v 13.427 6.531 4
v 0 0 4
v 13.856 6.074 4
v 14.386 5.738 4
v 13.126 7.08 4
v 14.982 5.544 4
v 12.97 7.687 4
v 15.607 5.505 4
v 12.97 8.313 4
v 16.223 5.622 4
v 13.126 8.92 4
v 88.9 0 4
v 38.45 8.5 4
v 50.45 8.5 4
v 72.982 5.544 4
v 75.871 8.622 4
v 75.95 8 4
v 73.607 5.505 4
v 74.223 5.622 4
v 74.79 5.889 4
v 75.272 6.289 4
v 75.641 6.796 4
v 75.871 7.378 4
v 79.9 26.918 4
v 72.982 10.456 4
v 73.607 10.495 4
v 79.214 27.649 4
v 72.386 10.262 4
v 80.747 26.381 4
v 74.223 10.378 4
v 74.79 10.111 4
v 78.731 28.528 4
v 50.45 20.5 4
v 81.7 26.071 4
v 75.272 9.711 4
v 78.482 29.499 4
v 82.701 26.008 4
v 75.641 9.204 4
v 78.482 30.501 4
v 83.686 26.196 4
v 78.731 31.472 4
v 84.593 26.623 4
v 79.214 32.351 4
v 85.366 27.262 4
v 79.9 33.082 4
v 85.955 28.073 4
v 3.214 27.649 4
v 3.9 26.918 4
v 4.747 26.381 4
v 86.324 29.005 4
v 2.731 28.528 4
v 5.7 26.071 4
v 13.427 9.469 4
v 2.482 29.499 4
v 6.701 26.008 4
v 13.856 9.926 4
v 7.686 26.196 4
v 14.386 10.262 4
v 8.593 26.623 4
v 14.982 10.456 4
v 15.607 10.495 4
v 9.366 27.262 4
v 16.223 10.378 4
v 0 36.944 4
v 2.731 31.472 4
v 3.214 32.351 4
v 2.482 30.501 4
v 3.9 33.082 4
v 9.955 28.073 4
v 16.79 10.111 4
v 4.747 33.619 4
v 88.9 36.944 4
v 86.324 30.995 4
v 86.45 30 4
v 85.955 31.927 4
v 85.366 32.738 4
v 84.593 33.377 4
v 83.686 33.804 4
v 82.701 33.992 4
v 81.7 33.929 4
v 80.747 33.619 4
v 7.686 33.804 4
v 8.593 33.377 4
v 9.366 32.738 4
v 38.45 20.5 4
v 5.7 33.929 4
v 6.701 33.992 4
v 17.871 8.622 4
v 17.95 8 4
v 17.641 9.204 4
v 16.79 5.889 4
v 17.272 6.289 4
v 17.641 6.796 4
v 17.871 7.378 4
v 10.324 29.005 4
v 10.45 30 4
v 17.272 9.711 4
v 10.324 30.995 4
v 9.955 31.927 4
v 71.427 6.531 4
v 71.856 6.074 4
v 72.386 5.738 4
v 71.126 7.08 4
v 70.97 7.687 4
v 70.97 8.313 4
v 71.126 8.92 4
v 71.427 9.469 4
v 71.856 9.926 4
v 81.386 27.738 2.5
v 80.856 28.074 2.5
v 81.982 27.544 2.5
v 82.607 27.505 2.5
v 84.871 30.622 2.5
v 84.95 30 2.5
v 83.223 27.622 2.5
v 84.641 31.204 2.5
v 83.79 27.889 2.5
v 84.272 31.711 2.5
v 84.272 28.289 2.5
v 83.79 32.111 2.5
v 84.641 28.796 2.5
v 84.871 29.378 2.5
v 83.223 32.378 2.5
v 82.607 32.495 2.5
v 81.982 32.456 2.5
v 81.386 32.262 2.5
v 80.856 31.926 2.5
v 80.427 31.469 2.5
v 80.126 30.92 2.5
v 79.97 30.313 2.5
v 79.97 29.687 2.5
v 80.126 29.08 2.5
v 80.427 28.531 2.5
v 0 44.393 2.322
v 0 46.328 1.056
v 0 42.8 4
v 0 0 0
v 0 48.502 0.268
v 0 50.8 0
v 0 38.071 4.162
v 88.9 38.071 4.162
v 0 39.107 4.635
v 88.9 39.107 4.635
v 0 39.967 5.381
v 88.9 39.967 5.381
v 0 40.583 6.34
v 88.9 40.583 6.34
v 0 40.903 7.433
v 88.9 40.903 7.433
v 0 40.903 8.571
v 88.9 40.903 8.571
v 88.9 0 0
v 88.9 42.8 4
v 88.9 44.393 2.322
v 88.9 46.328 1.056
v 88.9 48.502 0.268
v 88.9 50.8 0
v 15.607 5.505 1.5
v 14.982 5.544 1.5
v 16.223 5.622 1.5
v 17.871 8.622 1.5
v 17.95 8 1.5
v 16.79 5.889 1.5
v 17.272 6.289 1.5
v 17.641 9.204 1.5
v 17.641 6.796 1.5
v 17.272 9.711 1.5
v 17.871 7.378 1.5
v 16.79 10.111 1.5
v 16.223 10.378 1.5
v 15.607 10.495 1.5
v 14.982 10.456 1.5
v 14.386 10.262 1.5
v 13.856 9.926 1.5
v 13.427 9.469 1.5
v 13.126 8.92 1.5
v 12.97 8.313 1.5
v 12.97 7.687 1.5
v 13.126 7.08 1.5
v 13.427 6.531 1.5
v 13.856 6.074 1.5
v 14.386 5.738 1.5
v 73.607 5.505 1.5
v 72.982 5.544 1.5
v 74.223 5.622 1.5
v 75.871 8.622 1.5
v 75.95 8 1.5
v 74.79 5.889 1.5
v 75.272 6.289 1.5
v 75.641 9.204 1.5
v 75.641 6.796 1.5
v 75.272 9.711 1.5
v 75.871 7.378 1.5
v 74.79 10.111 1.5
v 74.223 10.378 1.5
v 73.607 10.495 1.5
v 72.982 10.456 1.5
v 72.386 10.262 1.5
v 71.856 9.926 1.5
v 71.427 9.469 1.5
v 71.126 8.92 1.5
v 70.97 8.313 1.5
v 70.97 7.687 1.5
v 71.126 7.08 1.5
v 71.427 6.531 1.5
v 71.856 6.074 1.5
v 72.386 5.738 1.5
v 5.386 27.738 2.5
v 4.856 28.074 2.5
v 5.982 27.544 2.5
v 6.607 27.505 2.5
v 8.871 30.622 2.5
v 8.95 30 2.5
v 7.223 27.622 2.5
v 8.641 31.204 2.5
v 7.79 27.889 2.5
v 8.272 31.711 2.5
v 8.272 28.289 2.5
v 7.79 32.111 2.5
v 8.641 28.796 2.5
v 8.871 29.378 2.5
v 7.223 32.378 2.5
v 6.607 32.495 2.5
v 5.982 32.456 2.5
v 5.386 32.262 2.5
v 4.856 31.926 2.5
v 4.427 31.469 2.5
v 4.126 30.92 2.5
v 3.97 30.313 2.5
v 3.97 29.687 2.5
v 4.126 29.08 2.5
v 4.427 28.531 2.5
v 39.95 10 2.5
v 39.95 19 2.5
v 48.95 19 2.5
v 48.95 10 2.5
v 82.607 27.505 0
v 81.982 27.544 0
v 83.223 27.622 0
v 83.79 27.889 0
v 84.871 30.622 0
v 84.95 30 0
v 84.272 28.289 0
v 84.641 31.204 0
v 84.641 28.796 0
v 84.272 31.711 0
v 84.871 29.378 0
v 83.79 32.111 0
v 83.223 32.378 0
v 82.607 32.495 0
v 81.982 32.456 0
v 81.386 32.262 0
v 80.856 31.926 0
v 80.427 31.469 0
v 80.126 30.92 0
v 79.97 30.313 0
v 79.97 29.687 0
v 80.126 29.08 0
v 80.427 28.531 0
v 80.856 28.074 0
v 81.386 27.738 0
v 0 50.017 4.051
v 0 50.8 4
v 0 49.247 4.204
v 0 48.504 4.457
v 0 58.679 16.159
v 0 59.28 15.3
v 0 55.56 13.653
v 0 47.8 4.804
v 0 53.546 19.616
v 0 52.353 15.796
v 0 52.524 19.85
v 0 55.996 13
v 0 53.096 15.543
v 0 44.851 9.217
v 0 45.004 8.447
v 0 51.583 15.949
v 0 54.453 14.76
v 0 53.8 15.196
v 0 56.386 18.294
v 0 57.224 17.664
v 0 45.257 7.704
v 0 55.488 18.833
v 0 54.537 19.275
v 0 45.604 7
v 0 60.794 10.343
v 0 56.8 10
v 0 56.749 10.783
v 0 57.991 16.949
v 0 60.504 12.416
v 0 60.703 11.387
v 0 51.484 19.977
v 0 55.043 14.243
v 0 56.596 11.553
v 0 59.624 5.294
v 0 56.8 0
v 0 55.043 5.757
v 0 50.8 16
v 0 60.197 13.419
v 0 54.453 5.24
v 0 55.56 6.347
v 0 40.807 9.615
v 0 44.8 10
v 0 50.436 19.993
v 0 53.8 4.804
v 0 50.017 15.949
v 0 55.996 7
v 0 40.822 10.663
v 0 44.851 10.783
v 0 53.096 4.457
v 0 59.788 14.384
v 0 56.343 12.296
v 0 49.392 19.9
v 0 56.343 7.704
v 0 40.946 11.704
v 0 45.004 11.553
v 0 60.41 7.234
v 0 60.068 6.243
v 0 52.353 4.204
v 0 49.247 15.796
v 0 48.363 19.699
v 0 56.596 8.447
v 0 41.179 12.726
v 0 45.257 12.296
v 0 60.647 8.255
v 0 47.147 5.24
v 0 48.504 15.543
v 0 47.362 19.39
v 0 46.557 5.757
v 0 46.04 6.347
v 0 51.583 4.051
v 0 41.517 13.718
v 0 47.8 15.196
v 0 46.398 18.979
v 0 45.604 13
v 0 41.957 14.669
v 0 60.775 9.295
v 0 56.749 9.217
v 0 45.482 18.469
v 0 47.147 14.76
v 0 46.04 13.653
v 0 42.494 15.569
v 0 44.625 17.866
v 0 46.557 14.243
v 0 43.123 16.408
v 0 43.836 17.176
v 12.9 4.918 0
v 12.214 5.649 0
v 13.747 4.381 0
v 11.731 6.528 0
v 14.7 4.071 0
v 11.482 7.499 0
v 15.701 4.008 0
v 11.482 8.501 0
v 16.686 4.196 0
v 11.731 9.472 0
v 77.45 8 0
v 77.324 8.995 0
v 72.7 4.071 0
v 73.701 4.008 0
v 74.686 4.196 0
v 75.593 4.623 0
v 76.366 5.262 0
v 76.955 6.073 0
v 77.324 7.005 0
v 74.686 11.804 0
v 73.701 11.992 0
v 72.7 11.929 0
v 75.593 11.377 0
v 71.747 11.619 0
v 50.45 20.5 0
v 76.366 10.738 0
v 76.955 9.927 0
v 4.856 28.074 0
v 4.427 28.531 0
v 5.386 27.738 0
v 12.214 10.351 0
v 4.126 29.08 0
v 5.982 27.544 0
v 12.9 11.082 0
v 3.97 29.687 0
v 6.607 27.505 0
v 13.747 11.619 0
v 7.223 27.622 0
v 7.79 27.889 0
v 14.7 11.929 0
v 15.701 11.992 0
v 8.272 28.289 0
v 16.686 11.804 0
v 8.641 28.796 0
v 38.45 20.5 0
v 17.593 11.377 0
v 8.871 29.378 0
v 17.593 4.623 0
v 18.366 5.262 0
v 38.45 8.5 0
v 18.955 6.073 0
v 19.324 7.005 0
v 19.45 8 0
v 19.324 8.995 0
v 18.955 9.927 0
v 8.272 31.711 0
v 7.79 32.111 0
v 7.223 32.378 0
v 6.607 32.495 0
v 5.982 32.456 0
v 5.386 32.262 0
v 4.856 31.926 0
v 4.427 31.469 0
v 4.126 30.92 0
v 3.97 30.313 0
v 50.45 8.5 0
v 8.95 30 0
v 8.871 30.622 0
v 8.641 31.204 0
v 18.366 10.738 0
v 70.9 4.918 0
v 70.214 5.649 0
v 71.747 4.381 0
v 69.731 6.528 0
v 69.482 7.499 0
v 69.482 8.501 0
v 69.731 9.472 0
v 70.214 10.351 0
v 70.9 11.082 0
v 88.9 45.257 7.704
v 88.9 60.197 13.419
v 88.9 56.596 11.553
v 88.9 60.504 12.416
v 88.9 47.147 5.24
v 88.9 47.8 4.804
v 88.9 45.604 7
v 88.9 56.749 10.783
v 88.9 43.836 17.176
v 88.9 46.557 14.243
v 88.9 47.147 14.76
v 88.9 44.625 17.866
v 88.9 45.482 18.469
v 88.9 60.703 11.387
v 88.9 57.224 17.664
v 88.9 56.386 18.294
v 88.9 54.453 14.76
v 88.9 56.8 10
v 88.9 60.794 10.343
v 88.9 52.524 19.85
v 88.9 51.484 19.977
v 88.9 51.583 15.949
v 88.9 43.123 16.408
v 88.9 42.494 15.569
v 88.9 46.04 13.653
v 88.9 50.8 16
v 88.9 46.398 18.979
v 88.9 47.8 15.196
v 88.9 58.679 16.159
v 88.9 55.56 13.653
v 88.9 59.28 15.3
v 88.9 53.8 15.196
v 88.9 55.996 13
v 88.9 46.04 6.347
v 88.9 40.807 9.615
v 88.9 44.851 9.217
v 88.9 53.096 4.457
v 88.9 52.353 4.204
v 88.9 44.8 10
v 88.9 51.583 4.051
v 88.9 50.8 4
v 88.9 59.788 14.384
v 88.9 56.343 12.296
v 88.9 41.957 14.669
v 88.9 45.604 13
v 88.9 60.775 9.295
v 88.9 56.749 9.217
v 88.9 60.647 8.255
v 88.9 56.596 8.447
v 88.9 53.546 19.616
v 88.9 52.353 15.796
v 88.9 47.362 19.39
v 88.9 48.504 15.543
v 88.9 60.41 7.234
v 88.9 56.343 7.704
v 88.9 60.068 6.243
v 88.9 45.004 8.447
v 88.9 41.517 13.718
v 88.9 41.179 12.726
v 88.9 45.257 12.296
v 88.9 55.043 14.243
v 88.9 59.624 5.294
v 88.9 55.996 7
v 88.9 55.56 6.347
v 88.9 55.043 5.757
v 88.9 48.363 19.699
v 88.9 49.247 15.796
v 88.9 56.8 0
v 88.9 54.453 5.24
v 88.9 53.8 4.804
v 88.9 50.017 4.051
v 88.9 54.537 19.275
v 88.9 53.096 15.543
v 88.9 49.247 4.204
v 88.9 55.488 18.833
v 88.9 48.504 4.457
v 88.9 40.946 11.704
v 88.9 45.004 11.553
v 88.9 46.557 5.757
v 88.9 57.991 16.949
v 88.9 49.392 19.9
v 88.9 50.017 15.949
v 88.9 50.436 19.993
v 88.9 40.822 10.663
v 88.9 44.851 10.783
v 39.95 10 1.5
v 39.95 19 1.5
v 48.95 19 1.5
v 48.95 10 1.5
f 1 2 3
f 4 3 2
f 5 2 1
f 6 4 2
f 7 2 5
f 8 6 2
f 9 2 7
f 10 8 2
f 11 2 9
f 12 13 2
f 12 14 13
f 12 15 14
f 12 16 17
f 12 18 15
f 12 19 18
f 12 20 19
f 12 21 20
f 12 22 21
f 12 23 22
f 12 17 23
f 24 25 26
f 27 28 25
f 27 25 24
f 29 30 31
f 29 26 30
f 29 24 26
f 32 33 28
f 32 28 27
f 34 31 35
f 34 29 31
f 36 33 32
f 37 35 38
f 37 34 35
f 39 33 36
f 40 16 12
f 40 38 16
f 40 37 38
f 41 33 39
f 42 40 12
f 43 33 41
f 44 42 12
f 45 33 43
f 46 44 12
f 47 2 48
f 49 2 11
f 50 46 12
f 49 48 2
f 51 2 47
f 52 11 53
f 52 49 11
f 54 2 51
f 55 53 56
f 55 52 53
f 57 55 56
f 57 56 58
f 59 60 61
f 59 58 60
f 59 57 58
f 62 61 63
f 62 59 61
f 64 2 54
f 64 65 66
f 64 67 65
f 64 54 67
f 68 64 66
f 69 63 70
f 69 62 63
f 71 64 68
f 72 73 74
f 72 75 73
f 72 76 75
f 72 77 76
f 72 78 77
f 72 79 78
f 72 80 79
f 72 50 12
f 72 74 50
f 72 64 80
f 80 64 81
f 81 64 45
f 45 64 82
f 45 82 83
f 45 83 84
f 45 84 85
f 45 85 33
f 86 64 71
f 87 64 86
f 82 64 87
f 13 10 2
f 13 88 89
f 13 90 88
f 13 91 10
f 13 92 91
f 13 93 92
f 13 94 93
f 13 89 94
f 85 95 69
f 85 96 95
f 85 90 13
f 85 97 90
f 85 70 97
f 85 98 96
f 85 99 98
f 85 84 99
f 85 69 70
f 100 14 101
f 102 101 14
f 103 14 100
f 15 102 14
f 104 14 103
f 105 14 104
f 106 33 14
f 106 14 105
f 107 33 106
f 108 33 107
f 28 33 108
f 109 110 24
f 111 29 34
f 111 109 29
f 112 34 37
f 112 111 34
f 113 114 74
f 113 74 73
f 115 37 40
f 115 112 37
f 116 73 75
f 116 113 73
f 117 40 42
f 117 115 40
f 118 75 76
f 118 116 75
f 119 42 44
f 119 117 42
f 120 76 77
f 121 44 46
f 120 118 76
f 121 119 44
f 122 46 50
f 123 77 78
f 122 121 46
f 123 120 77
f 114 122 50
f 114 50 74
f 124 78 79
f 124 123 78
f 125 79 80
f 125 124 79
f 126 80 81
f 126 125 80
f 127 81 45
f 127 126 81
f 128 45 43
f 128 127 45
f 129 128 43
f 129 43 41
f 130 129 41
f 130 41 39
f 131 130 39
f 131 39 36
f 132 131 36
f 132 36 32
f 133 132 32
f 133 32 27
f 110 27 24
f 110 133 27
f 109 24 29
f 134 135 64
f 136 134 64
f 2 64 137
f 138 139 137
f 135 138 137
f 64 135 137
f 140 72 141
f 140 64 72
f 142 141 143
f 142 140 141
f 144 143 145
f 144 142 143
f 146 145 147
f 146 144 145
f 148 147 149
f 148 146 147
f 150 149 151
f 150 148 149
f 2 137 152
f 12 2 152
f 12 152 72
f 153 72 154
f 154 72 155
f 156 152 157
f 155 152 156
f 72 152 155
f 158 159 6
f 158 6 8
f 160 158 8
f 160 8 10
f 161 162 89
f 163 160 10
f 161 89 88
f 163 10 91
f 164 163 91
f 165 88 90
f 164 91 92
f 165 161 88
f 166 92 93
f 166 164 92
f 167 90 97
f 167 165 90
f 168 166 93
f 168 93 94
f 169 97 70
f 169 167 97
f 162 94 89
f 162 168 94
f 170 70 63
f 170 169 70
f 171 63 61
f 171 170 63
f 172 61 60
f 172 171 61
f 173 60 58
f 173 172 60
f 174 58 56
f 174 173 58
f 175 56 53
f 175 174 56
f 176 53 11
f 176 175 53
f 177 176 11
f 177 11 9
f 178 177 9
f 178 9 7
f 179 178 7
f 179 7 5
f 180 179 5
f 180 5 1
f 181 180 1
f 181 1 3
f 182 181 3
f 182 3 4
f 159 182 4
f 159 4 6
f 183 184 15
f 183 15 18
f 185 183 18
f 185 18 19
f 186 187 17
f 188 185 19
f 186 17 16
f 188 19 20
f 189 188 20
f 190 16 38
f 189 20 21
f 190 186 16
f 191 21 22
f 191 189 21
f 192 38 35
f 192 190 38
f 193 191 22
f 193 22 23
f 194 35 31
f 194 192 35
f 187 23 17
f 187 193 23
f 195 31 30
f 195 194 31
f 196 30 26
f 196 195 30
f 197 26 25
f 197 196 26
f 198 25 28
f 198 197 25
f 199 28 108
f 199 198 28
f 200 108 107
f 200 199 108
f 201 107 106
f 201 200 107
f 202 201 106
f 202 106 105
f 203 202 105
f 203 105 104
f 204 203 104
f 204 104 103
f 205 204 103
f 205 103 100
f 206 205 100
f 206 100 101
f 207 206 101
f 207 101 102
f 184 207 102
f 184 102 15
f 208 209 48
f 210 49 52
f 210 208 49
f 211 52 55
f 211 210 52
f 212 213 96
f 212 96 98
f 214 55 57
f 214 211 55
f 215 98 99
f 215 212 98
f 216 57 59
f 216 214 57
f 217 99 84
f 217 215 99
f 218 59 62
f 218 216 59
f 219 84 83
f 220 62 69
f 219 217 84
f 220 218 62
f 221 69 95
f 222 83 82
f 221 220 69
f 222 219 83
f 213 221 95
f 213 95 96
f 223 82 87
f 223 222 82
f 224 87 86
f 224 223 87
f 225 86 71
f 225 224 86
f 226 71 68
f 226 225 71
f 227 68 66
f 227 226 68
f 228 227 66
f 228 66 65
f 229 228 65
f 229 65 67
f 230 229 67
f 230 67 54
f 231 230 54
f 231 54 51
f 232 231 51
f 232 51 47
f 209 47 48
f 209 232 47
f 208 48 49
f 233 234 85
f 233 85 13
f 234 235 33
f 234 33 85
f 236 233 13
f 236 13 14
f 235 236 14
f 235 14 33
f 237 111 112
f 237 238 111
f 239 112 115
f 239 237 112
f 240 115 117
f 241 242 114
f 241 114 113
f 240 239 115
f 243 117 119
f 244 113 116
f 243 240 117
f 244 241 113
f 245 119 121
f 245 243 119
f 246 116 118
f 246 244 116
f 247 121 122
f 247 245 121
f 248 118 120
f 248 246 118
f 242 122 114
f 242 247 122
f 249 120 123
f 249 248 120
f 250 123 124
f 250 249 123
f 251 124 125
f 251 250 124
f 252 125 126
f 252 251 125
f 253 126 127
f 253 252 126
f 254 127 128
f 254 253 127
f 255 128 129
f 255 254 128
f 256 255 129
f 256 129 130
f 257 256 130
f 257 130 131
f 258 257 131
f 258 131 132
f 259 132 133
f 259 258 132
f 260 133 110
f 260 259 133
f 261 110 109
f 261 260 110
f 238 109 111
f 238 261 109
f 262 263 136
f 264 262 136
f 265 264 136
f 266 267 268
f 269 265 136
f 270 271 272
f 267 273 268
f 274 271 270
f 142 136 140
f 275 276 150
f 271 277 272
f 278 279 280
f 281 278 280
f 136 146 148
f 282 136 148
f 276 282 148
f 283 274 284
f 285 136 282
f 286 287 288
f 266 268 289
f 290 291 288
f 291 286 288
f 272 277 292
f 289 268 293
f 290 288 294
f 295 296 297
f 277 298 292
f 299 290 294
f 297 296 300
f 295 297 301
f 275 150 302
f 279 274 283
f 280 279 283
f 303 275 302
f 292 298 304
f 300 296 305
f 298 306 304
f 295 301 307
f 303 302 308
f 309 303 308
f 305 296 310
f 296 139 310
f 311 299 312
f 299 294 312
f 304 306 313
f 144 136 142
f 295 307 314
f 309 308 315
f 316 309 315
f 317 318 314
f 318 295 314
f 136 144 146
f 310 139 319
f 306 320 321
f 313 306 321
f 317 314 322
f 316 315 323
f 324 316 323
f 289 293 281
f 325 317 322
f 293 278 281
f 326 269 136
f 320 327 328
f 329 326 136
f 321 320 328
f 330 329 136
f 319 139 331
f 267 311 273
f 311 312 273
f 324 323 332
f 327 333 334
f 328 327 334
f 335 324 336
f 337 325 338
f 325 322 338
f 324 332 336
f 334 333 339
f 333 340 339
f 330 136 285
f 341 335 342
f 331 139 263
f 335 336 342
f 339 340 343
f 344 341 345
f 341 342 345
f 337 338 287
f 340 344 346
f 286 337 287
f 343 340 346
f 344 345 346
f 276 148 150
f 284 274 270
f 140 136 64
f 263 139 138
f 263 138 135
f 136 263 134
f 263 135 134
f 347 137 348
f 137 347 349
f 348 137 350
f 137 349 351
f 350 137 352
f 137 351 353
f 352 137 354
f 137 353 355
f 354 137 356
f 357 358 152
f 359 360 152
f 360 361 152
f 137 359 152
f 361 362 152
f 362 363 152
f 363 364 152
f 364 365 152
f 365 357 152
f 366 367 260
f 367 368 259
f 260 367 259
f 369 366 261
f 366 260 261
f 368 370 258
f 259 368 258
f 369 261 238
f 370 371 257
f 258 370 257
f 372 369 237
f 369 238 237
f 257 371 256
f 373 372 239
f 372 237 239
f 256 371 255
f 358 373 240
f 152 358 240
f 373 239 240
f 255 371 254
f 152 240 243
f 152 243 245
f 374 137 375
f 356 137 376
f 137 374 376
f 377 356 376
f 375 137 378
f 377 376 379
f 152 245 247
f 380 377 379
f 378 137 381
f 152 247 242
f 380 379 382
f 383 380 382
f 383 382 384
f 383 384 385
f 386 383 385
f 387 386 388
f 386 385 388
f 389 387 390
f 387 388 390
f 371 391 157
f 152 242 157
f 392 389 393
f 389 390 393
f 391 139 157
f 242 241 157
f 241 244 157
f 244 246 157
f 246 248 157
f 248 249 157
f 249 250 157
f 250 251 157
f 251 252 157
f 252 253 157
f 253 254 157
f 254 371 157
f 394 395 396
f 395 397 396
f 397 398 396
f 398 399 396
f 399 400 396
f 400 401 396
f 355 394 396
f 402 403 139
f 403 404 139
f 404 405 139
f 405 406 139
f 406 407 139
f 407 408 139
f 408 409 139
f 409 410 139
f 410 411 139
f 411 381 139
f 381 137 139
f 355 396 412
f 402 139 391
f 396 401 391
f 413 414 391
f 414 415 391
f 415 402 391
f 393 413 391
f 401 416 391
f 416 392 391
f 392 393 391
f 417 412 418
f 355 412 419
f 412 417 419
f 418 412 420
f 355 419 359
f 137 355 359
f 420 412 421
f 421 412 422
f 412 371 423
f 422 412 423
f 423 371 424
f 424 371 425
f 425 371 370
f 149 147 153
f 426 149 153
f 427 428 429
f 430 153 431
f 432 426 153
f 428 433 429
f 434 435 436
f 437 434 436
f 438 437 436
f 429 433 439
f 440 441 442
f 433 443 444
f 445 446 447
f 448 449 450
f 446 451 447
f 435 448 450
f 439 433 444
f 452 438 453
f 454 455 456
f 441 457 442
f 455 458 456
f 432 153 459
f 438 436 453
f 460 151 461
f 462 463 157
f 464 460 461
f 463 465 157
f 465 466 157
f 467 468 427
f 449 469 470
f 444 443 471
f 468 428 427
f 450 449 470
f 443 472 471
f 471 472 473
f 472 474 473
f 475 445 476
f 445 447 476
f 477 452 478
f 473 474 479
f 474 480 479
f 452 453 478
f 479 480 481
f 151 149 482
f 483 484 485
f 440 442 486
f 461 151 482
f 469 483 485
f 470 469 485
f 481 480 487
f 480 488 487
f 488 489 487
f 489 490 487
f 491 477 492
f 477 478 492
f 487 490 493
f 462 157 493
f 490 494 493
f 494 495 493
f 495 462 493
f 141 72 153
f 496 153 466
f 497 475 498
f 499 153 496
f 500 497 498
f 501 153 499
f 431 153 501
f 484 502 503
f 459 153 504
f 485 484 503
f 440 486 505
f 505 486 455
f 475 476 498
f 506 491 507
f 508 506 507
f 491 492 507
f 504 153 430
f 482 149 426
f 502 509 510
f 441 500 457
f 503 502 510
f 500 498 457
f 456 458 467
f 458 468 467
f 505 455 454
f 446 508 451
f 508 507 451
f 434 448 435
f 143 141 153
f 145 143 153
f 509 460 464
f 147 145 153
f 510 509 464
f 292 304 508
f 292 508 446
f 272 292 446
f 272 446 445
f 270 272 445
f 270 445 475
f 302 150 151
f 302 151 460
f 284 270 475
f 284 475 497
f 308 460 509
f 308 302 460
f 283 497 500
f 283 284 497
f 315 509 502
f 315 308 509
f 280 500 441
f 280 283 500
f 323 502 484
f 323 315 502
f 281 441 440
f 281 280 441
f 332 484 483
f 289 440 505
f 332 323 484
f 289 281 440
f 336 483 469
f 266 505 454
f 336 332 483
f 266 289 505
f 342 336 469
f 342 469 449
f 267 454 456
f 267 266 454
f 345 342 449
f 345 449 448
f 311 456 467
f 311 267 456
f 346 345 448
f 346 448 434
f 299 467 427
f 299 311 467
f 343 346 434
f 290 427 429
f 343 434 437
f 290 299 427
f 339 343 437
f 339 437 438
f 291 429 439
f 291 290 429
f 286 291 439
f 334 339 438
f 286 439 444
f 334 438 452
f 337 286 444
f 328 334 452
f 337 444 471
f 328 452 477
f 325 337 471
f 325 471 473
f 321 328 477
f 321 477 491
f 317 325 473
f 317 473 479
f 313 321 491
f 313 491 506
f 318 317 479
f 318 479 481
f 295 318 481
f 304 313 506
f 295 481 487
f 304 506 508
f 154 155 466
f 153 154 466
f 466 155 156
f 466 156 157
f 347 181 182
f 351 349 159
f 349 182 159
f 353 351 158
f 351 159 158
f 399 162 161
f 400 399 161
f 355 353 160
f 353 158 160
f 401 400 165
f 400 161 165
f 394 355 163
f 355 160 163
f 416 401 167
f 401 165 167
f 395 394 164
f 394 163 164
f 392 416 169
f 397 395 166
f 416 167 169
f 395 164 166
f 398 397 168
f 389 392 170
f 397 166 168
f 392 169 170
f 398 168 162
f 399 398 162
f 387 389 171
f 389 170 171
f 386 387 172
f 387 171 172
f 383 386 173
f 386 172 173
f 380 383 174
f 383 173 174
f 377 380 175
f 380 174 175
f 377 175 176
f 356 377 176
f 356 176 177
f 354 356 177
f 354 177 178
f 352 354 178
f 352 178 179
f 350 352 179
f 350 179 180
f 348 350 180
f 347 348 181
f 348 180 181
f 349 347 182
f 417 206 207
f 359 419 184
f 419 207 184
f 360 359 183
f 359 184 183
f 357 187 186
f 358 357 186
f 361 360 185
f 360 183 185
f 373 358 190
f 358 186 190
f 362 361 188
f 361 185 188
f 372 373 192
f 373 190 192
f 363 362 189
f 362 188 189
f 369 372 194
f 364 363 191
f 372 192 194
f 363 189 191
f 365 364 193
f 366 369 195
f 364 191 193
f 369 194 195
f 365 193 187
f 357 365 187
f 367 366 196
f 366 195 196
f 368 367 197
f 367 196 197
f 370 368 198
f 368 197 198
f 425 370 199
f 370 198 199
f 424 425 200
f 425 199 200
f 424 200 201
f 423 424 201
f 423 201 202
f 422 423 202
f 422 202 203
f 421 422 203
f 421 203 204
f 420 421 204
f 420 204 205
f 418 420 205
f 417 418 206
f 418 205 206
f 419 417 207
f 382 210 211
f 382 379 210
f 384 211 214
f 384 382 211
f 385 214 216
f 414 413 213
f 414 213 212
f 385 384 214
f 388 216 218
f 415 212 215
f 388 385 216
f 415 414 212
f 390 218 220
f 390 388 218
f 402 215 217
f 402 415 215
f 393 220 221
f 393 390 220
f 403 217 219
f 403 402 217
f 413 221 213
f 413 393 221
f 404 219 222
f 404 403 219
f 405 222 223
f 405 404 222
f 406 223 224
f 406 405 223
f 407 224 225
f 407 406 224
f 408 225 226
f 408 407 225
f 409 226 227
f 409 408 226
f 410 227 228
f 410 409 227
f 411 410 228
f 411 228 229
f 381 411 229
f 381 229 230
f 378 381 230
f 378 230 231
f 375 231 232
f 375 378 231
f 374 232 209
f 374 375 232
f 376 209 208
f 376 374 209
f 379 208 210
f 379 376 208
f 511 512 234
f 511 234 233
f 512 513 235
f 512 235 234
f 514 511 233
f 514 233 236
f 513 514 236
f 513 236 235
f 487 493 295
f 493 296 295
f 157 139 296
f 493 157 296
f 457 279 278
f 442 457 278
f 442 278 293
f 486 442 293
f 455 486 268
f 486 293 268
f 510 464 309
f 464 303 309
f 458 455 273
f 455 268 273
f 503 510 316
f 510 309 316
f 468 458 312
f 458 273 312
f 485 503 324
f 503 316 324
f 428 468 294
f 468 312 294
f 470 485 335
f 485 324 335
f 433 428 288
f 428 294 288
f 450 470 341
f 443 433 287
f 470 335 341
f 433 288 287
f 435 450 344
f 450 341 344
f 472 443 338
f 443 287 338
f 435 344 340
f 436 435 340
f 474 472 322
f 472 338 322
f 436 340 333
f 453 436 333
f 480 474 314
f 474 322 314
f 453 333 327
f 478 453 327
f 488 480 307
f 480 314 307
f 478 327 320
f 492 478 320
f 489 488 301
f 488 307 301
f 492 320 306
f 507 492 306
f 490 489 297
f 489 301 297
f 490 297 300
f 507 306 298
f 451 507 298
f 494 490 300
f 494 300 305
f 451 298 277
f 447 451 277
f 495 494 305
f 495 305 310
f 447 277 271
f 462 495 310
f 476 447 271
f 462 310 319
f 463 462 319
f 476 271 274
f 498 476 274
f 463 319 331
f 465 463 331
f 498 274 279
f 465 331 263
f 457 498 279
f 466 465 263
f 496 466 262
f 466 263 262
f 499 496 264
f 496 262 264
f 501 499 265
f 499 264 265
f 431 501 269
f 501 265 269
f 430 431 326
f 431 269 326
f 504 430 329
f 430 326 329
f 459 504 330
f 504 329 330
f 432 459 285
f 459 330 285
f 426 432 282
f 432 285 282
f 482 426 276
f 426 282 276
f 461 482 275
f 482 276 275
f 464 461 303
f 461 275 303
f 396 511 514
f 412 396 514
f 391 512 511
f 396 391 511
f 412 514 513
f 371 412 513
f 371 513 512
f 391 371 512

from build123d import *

# Parameters (mm, degrees)
SKETCH_W     = 88.9
SKETCH_H     = 50.8
SKETCH_R     = 2.5
SKETCH_W_2   = 9
SKETCH_H_2   = 9
PAD_DEPTH    = 4
SKETCH001_R  = 6
PAD001_DEPTH = 88.9
FILLET_R     = 4
CHAMFER_SIZE = 1.5


with BuildPart() as part:
    # Sketch → Pad (new body)
    with BuildSketch(Plane.XY):
        with Locations((44.45, 25.4)):
            Rectangle(SKETCH_W, SKETCH_H)
        with Locations((15.45, 8)):
            Circle(SKETCH_R, mode=Mode.SUBTRACT)
        with Locations((73.45, 8)):
            Circle(SKETCH_R, mode=Mode.SUBTRACT)
        with Locations((6.45, 30)):
            Circle(SKETCH_R, mode=Mode.SUBTRACT)
        with Locations((82.45, 30)):
            Circle(SKETCH_R, mode=Mode.SUBTRACT)
        with Locations((44.45, 14.5)):
            Rectangle(SKETCH_W_2, SKETCH_H_2, mode=Mode.SUBTRACT)
    extrude(amount=PAD_DEPTH)

    # Sketch001 (on Face4 of Pad) → Pad001 (join)
    with BuildSketch(Plane(origin=(0, 0, 0), x_dir=(0, -1, 0), z_dir=(-1, 0, 0))):
        with BuildLine():
            Line((-50.8, 0), (-56.8, 0))
            Line((-56.8, 0), (-59.623533, 5.294124))
            ThreePointArc((-50.8, 0), (-45.655039, 18.574927), (-59.623533, 5.294124))
        make_face()
        with Locations((-50.8, 10)):
            Circle(SKETCH001_R, mode=Mode.SUBTRACT)
    extrude(amount=-PAD001_DEPTH)

    # Fillet
    fillet_edges = [part.edges().sort_by_distance(p)[0] for p in [
        (44.45, 42.8, 4),
    ]]
    fillet(fillet_edges, radius=FILLET_R)

    # Chamfer
    chamfer_edges = [part.edges().sort_by_distance(p)[0] for p in [
        (79.95, 30, 4),
        (3.95, 30, 4),
        (70.95, 8, 0),
        (12.95, 8, 0),
        (44.45, 10, 0),
        (39.95, 14.5, 0),
        (44.45, 19, 0),
        (48.95, 14.5, 0),
        (39.95, 14.5, 4),
        (44.45, 19, 4),
        (48.95, 14.5, 4),
        (44.45, 10, 4),
    ]]
    chamfer(chamfer_edges, length=CHAMFER_SIZE)


solid = part.part
